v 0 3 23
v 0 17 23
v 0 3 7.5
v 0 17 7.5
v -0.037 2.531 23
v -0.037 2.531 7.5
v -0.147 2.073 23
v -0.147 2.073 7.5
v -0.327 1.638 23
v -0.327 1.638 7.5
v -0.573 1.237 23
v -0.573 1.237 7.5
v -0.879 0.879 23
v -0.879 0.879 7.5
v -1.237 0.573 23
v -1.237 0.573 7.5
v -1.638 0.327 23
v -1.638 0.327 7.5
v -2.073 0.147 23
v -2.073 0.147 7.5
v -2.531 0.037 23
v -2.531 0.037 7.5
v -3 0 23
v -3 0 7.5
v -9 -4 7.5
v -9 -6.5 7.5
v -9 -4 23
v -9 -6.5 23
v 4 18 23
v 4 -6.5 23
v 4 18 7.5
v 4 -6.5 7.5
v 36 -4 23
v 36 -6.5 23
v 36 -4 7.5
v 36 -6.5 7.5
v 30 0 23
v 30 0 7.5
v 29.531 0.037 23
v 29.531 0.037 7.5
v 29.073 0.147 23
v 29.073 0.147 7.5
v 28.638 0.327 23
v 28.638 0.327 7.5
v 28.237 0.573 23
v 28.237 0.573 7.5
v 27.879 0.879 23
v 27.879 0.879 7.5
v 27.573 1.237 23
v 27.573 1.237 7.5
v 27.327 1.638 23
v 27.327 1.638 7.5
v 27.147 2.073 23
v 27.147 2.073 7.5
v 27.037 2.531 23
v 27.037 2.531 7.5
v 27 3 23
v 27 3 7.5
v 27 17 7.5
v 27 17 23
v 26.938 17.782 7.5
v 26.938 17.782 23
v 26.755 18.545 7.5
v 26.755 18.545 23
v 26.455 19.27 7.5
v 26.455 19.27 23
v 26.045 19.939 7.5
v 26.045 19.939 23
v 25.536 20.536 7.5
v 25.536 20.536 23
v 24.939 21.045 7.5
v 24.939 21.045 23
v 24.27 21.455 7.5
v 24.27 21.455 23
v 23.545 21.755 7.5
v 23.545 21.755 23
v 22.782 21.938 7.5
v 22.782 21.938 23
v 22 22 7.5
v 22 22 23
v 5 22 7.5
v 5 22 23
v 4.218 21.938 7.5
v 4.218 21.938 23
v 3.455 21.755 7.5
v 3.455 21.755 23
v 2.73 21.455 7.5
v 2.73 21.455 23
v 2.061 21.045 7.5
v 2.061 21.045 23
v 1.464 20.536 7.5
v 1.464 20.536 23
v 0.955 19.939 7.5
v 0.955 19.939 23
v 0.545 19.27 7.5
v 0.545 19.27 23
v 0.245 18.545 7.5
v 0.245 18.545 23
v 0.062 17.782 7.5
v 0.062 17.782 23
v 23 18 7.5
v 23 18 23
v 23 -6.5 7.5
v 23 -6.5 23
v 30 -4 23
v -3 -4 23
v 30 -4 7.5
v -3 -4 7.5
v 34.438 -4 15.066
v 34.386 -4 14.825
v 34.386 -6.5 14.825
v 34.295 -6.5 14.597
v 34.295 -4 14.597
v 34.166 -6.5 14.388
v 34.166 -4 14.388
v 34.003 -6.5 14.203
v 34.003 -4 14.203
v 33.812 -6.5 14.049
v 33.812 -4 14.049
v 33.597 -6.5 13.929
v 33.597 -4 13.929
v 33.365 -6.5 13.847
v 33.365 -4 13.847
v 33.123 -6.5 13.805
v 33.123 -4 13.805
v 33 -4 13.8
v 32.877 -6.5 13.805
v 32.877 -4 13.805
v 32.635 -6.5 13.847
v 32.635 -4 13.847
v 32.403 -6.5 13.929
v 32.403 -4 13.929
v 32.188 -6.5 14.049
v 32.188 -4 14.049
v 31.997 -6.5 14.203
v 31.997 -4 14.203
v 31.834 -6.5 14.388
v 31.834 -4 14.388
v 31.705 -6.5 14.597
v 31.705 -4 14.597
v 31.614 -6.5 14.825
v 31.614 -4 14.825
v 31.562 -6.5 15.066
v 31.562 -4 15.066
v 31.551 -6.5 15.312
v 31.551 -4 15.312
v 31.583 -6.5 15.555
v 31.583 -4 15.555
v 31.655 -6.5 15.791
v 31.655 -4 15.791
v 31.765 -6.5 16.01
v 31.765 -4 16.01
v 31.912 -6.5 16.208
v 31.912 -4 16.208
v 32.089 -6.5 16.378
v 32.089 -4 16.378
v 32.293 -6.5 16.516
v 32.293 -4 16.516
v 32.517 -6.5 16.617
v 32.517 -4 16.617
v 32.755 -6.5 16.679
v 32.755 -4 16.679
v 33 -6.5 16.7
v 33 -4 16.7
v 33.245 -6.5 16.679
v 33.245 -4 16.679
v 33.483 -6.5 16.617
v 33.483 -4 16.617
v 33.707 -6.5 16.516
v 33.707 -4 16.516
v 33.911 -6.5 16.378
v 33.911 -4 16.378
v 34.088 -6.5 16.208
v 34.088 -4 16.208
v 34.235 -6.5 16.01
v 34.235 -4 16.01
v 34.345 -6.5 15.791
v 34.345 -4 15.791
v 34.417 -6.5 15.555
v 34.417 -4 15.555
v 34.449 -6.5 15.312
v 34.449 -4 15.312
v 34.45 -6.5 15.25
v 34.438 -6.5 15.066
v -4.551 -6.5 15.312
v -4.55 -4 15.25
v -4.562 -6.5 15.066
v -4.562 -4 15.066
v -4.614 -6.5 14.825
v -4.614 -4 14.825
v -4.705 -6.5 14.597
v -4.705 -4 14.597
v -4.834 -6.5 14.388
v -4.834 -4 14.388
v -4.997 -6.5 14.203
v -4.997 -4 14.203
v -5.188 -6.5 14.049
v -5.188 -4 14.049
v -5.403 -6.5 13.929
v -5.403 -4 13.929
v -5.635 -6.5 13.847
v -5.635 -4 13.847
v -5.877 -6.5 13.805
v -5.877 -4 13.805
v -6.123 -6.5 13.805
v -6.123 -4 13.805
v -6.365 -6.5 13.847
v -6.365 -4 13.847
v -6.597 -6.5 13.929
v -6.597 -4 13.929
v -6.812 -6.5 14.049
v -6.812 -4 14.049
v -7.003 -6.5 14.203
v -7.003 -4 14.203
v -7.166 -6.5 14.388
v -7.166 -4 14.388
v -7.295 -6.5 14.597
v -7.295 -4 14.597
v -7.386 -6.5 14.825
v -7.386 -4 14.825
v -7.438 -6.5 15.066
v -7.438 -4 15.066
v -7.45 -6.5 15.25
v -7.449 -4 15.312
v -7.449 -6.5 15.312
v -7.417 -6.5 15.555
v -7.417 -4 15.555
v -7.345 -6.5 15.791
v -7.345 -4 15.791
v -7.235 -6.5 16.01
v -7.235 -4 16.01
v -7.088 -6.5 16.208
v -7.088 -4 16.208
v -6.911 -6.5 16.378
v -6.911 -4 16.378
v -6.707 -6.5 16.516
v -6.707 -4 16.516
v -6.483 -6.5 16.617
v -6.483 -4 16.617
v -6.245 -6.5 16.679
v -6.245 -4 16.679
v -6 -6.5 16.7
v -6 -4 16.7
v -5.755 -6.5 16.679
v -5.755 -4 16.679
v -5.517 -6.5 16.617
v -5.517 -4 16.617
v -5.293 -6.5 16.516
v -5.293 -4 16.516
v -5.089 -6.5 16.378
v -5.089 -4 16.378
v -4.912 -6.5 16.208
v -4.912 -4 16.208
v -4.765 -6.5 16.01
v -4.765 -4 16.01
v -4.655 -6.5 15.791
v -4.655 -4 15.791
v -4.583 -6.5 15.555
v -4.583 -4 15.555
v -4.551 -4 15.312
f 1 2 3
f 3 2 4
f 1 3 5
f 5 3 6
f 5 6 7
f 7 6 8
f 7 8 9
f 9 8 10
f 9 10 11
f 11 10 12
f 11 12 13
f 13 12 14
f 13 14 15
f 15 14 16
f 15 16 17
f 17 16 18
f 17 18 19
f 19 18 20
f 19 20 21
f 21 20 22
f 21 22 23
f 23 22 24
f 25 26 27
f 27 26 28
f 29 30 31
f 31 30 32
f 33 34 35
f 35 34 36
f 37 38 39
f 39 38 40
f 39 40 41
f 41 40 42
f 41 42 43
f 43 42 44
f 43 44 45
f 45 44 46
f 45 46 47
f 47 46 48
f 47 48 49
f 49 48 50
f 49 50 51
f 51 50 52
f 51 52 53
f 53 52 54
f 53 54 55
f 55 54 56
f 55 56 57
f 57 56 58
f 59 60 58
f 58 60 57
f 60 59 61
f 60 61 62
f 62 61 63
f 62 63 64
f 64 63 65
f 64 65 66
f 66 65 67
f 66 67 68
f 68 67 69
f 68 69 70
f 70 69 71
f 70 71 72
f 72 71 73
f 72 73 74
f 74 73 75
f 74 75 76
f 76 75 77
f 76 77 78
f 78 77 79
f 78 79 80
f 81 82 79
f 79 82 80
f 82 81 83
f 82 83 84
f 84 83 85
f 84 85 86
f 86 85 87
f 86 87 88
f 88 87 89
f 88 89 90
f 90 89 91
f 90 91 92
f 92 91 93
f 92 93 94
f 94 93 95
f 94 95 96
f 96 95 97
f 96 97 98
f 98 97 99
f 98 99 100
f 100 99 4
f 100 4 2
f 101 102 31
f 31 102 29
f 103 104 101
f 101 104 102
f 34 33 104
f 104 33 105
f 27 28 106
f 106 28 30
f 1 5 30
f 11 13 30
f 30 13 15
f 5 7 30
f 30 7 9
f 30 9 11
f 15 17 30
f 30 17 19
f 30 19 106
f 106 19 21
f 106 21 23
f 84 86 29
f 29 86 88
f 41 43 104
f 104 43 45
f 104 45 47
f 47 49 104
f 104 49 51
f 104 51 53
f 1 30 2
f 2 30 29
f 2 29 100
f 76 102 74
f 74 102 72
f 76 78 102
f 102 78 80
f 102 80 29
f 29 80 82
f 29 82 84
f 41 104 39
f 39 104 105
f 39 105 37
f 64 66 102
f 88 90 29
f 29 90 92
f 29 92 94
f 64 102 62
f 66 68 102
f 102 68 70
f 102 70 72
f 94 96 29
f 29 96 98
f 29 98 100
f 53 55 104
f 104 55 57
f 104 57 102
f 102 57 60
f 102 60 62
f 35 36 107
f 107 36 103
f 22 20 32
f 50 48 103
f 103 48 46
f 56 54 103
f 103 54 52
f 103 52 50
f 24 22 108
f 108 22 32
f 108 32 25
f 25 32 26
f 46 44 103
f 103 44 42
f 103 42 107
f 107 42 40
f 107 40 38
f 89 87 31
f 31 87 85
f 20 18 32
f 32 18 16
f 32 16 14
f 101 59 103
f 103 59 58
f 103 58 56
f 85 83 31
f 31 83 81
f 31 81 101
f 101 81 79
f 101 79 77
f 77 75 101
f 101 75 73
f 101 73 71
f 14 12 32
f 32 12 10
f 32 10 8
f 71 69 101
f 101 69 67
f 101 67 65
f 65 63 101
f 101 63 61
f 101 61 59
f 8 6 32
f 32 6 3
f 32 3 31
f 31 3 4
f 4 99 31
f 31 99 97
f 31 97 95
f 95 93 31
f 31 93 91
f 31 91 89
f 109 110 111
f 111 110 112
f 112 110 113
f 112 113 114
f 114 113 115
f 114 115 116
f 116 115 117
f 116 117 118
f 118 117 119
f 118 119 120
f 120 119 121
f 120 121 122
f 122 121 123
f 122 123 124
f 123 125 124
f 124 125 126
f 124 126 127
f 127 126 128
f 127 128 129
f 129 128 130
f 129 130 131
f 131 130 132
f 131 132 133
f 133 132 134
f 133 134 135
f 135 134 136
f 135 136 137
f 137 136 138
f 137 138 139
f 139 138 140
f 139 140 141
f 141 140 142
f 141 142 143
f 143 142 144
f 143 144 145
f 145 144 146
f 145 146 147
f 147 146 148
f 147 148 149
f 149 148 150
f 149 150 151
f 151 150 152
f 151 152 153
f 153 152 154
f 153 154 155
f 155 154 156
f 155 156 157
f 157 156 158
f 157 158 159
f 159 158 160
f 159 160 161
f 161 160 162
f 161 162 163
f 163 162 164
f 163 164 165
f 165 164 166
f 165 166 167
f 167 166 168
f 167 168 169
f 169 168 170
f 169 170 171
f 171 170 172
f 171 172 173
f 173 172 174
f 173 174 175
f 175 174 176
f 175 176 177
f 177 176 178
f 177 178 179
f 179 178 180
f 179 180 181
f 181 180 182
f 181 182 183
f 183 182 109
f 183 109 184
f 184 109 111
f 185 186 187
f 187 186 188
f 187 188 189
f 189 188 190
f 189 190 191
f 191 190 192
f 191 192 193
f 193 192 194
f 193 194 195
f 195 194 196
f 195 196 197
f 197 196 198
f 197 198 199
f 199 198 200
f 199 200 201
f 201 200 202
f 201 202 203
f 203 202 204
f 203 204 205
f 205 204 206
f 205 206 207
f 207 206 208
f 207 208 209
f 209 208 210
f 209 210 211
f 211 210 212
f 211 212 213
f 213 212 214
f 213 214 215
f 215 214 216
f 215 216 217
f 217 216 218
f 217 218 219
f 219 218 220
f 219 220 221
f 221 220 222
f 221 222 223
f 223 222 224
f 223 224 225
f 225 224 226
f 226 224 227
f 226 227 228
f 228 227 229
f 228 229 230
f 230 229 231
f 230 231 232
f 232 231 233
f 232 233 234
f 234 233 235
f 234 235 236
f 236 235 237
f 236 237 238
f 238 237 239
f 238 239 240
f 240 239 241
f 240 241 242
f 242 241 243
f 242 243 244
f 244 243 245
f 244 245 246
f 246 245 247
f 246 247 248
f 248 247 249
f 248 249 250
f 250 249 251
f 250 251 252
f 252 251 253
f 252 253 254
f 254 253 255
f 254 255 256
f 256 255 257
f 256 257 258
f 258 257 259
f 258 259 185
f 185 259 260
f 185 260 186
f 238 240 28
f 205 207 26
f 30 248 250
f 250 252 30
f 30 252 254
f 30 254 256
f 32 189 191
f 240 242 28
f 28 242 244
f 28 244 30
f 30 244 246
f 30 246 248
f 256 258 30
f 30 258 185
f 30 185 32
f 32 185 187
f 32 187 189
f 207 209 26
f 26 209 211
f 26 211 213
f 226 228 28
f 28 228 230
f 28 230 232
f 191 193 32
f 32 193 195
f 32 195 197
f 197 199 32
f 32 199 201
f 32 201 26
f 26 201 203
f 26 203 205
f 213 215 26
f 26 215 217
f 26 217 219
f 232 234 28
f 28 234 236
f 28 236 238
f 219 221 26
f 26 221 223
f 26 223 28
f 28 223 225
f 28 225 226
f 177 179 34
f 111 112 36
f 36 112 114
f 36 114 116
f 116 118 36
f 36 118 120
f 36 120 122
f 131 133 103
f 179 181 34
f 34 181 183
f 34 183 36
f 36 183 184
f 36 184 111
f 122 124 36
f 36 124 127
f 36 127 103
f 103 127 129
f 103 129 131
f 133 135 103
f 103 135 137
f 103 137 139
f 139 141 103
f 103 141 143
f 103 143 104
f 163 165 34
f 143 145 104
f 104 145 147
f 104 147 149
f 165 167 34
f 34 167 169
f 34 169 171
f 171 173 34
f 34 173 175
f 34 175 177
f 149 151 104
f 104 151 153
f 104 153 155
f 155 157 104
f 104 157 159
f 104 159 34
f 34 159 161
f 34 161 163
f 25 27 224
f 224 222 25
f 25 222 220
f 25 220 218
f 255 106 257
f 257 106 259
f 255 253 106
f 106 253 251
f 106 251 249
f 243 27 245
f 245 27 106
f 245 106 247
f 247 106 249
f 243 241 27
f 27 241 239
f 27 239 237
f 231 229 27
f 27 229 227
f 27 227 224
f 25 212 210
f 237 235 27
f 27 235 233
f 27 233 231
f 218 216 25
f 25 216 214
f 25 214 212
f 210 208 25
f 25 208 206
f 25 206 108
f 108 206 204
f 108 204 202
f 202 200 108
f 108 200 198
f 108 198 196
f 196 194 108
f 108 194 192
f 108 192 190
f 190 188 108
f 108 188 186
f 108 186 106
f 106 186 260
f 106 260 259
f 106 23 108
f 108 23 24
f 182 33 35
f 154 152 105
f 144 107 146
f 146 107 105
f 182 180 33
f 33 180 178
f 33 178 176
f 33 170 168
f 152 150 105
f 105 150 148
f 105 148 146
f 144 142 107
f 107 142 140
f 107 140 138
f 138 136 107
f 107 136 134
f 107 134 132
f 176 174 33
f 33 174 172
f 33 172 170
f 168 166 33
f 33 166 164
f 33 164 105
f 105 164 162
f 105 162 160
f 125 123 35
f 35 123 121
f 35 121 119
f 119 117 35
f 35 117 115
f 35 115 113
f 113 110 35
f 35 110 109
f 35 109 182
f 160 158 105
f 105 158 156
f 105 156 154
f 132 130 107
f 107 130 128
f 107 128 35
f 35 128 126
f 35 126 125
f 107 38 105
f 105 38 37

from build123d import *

# Parameters (mm, degrees)
BOSS_EXTRUDE1_DEPTH     = 23
CUT_EXTRUDE2_DEPTH      = 23
CUT_EXTRUDE2_DEPTH_BACK = 10
SKETCH4_W               = 3.5
SKETCH4_H               = 21
SKETCH5_W               = 45
SKETCH5_H               = 7.5
CUT_EXTRUDE3_DEPTH      = 26
SKETCH7_R               = 1.45
CUT_EXTRUDE4_DEPTH      = 50
SKETCH8_W               = 13
SKETCH8_H               = 15.5
BOSS_EXTRUDE2_DEPTH     = 2.5
SKETCH9_R               = 1.45
CUT_EXTRUDE5_DEPTH      = 10
SKETCH10_W              = 15.5
SKETCH10_H              = 4
CUT_EXTRUDE7_DEPTH      = 6
SKETCH11_W              = 15.5
SKETCH11_H              = 4
CUT_EXTRUDE8_DEPTH      = 6


with BuildPart() as part:
    # Sketch1 → Boss-Extrude1 (new body)
    with BuildSketch(Plane.XY):
        with BuildLine():
            Line((0, 3), (0, 17))
            ThreePointArc((0, 17), (1.464466094, 20.535533906), (5, 22))
            Line((5, 22), (22, 22))
            ThreePointArc((22, 22), (25.535533906, 20.535533906), (27, 17))
            Line((27, 17), (27, 3))
            ThreePointArc((27, 3), (27.878679656, 0.878679656), (30, 0))
            Line((30, 0), (36, 0))
            Line((36, 0), (36, -4))
            Line((36, -4), (23, -4))
            Line((23, -4), (23, 18))
            Line((23, 18), (4, 18))
            Line((4, 18), (4, -4))
            Line((4, -4), (-9, -4))
            Line((-9, -4), (-9, 0))
            Line((-9, 0), (-3, 0))
            ThreePointArc((-3, 0), (-0.878679656, 0.878679656), (0, 3))
        make_face()
    extrude(amount=BOSS_EXTRUDE1_DEPTH)

    # Sketch4 → Cut-Extrude2 (cut, two sides: drawn at the far end of the back side and taken through both)
    with BuildSketch(Plane.ZY.offset(-CUT_EXTRUDE2_DEPTH_BACK)):
        with Locations((5.75, 6.5)):
            Rectangle(SKETCH4_W, SKETCH4_H)
    extrude(amount=CUT_EXTRUDE2_DEPTH + CUT_EXTRUDE2_DEPTH_BACK, mode=Mode.SUBTRACT)

    # Sketch5 → Cut-Extrude3 (cut)
    with BuildSketch(Plane(origin=(0, 22, 0), x_dir=(1, 0, 0), z_dir=(0, 1, 0))):
        with Locations((13.5, -3.75)):
            Rectangle(SKETCH5_W, SKETCH5_H)
    extrude(amount=-CUT_EXTRUDE3_DEPTH, mode=Mode.SUBTRACT)

    # Sketch7 → Cut-Extrude4 (cut)
    with BuildSketch(Plane(origin=(0, 0, 0), x_dir=(1, 0, 0), z_dir=(0, 1, 0))):
        with Locations(Location((-6, -15.25, 0), (0, 0, 270))):
            Circle(SKETCH7_R)
        with Locations(Location((33, -15.25, 0), (0, 0, 180))):
            Circle(SKETCH7_R)
    extrude(amount=-CUT_EXTRUDE4_DEPTH, mode=Mode.SUBTRACT)

    # Sketch8 → Boss-Extrude2 (add)
    with BuildSketch(Plane.XZ.offset(4)):
        with Locations((29.5, 15.25)):
            Rectangle(SKETCH8_W, SKETCH8_H)
        with Locations((-2.5, 15.25)):
            Rectangle(SKETCH8_W, SKETCH8_H)
    extrude(amount=BOSS_EXTRUDE2_DEPTH)

    # Sketch9 → Cut-Extrude5 (cut)
    with BuildSketch(Plane(origin=(0, -4, 0), x_dir=(1, 0, 0), z_dir=(0, 1, 0))):
        with Locations((33, -15.25)):
            Circle(SKETCH9_R)
        with Locations(Location((-6, -15.25, 0), (0, 0, 270))):
            Circle(SKETCH9_R)
    extrude(amount=-CUT_EXTRUDE5_DEPTH, mode=Mode.SUBTRACT)

    # Sketch10 → Cut-Extrude7 (cut)
    with BuildSketch(Plane.ZY.offset(9)):
        with Locations((15.25, -2)):
            Rectangle(SKETCH10_W, SKETCH10_H)
    extrude(amount=-CUT_EXTRUDE7_DEPTH, mode=Mode.SUBTRACT)

    # Sketch11 → Cut-Extrude8 (cut)
    with BuildSketch(Plane(origin=(36, 0, 0), x_dir=(0, 0, -1), z_dir=(1, 0, 0))):
        with Locations((-15.25, -2)):
            Rectangle(SKETCH11_W, SKETCH11_H)
    extrude(amount=-CUT_EXTRUDE8_DEPTH, mode=Mode.SUBTRACT)


solid = part.part
